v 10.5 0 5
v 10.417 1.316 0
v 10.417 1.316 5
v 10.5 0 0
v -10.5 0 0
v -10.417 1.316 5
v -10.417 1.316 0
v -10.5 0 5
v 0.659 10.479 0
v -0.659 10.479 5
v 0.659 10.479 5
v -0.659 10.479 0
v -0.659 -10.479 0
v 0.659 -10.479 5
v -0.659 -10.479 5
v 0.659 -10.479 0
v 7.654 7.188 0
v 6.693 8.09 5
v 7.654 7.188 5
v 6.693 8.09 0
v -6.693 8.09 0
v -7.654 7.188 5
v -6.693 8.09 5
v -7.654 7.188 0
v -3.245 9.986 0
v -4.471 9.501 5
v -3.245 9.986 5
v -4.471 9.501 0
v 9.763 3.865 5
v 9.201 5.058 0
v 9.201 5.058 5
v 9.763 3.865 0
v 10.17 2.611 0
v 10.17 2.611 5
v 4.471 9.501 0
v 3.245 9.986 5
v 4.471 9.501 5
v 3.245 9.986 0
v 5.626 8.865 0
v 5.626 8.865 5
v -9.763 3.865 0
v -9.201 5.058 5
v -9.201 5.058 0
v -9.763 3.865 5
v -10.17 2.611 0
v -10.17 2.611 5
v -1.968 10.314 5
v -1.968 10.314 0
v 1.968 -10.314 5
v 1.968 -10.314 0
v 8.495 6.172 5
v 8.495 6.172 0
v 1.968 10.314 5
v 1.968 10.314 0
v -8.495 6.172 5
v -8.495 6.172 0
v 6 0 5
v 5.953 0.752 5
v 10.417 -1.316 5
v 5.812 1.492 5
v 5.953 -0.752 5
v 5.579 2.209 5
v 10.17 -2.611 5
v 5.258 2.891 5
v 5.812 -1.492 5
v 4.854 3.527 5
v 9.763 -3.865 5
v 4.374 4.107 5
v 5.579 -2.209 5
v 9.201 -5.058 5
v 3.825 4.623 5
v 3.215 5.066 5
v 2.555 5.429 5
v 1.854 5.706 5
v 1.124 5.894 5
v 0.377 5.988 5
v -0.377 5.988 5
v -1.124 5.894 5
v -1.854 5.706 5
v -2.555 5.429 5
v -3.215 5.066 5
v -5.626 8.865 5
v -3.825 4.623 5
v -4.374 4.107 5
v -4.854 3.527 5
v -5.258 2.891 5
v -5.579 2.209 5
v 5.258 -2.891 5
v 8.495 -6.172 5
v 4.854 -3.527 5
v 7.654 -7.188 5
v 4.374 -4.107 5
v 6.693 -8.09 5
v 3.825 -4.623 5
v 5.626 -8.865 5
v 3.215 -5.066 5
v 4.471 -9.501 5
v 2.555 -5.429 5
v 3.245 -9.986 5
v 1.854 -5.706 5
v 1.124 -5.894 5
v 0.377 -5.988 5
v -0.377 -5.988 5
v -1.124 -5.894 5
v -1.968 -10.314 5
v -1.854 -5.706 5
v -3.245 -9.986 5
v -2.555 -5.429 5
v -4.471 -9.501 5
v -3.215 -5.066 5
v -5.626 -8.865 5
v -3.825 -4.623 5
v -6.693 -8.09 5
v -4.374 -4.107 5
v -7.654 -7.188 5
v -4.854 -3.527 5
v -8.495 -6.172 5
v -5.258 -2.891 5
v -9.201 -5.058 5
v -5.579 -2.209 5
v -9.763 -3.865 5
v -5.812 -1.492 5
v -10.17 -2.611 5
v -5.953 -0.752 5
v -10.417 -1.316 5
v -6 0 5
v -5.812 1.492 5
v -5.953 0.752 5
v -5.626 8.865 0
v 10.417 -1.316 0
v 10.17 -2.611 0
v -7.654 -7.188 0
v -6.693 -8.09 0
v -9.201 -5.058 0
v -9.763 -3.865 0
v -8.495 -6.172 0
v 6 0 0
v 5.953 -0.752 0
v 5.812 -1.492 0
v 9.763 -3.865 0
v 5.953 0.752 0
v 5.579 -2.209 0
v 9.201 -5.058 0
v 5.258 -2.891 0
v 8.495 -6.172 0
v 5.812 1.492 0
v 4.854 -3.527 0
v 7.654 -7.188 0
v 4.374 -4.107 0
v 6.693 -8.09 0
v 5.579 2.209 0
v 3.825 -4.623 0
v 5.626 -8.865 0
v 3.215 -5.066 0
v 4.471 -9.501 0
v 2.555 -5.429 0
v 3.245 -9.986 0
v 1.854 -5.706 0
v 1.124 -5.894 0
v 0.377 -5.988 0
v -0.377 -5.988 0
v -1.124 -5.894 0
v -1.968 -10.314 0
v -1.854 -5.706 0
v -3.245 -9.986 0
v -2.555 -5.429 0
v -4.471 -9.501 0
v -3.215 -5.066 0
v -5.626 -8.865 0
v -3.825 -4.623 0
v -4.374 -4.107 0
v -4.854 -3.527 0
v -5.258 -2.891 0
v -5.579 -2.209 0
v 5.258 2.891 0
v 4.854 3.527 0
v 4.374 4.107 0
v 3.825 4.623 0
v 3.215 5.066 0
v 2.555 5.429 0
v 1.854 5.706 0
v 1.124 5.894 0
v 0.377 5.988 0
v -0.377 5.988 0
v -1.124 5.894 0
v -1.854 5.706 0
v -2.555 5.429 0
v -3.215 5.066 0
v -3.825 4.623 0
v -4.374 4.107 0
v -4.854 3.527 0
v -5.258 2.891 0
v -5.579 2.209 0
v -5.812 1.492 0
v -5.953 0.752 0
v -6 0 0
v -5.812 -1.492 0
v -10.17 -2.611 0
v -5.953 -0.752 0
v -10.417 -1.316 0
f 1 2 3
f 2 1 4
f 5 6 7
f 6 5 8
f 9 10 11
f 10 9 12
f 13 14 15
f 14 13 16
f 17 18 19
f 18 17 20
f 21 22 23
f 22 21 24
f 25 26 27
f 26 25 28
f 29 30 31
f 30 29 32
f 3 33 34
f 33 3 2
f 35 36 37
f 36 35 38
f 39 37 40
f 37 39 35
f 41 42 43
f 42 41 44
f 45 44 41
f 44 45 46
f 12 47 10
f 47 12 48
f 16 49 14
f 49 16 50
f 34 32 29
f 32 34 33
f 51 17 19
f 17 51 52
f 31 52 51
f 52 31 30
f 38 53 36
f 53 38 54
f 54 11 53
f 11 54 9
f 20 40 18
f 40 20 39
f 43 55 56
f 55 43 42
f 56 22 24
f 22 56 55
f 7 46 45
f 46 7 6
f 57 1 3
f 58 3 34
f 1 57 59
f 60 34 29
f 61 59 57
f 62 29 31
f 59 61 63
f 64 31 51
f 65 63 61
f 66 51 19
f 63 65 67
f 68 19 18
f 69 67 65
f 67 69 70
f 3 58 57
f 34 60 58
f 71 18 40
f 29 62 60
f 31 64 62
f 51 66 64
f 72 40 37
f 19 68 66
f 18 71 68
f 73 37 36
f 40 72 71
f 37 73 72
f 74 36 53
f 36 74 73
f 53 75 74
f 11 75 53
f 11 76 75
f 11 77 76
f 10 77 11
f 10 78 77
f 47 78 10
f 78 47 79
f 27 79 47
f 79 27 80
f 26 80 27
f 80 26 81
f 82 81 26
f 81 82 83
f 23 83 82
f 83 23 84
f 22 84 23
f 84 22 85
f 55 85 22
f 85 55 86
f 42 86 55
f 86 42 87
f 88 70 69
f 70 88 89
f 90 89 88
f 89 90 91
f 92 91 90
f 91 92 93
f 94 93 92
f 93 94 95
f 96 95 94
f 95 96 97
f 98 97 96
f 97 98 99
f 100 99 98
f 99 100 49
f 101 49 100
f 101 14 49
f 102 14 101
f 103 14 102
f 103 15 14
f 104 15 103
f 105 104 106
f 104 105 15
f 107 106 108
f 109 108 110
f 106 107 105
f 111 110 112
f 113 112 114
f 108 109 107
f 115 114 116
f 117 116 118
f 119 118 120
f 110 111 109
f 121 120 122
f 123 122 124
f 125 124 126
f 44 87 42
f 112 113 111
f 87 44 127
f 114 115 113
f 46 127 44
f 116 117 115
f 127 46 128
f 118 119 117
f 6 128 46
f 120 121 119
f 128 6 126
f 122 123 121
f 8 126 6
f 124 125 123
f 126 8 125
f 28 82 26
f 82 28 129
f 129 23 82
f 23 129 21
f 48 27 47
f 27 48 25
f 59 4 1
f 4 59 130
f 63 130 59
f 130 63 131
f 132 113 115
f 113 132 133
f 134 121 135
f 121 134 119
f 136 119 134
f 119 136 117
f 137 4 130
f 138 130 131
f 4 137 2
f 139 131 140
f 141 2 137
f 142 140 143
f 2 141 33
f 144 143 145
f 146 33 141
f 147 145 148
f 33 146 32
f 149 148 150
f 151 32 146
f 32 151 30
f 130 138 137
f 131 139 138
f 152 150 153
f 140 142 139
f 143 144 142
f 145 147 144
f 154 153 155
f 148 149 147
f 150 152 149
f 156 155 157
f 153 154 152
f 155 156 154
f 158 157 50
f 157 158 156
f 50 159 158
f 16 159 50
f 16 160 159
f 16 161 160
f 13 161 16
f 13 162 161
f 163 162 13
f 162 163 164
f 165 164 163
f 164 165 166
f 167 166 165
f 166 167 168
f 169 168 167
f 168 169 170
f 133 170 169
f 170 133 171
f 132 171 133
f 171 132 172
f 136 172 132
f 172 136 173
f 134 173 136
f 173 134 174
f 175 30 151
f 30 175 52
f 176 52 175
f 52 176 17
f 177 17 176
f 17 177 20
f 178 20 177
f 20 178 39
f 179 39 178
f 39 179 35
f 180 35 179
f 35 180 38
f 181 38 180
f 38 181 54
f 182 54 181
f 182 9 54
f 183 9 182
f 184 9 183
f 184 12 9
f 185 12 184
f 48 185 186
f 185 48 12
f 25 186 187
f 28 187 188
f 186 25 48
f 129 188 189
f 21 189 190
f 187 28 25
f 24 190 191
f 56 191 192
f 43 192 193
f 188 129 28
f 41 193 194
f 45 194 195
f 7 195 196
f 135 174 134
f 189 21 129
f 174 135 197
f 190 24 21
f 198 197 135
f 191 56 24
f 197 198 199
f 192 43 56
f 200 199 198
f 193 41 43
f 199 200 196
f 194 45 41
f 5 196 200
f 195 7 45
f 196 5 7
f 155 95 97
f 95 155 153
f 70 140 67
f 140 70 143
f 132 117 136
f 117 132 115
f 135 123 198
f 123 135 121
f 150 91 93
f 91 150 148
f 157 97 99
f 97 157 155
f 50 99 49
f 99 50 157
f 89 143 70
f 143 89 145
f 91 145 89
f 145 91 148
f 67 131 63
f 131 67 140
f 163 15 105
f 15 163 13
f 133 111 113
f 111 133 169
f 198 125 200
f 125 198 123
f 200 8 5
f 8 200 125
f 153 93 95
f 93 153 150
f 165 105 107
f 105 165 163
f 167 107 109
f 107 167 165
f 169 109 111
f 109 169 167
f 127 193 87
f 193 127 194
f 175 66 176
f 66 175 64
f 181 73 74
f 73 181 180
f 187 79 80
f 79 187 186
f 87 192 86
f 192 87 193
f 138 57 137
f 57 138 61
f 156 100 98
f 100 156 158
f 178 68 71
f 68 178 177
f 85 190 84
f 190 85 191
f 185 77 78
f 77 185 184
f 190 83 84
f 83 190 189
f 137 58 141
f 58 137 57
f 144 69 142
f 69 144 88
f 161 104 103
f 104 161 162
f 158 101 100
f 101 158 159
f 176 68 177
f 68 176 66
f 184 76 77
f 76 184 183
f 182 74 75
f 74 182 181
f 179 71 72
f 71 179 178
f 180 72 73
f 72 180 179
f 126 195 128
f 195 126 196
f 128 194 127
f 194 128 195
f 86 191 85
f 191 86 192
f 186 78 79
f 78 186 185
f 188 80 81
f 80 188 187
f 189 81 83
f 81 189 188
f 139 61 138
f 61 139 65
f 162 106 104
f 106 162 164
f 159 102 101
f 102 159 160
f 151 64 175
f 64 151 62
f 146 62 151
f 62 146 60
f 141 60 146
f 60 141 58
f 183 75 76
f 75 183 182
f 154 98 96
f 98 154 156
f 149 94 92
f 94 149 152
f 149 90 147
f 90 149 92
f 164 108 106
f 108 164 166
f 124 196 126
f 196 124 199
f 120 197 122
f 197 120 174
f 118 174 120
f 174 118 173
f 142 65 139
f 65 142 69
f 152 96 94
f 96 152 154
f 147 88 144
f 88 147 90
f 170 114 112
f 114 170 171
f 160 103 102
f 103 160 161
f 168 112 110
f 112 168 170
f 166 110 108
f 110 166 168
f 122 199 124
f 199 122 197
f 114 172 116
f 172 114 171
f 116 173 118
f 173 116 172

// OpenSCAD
$fn = 50;


difference() {
	union() {
		cylinder(h = 5, r = 10.5000000000);
	}
	union() {
		cylinder(h = 5, r = 6.0000000000);
	}
}
